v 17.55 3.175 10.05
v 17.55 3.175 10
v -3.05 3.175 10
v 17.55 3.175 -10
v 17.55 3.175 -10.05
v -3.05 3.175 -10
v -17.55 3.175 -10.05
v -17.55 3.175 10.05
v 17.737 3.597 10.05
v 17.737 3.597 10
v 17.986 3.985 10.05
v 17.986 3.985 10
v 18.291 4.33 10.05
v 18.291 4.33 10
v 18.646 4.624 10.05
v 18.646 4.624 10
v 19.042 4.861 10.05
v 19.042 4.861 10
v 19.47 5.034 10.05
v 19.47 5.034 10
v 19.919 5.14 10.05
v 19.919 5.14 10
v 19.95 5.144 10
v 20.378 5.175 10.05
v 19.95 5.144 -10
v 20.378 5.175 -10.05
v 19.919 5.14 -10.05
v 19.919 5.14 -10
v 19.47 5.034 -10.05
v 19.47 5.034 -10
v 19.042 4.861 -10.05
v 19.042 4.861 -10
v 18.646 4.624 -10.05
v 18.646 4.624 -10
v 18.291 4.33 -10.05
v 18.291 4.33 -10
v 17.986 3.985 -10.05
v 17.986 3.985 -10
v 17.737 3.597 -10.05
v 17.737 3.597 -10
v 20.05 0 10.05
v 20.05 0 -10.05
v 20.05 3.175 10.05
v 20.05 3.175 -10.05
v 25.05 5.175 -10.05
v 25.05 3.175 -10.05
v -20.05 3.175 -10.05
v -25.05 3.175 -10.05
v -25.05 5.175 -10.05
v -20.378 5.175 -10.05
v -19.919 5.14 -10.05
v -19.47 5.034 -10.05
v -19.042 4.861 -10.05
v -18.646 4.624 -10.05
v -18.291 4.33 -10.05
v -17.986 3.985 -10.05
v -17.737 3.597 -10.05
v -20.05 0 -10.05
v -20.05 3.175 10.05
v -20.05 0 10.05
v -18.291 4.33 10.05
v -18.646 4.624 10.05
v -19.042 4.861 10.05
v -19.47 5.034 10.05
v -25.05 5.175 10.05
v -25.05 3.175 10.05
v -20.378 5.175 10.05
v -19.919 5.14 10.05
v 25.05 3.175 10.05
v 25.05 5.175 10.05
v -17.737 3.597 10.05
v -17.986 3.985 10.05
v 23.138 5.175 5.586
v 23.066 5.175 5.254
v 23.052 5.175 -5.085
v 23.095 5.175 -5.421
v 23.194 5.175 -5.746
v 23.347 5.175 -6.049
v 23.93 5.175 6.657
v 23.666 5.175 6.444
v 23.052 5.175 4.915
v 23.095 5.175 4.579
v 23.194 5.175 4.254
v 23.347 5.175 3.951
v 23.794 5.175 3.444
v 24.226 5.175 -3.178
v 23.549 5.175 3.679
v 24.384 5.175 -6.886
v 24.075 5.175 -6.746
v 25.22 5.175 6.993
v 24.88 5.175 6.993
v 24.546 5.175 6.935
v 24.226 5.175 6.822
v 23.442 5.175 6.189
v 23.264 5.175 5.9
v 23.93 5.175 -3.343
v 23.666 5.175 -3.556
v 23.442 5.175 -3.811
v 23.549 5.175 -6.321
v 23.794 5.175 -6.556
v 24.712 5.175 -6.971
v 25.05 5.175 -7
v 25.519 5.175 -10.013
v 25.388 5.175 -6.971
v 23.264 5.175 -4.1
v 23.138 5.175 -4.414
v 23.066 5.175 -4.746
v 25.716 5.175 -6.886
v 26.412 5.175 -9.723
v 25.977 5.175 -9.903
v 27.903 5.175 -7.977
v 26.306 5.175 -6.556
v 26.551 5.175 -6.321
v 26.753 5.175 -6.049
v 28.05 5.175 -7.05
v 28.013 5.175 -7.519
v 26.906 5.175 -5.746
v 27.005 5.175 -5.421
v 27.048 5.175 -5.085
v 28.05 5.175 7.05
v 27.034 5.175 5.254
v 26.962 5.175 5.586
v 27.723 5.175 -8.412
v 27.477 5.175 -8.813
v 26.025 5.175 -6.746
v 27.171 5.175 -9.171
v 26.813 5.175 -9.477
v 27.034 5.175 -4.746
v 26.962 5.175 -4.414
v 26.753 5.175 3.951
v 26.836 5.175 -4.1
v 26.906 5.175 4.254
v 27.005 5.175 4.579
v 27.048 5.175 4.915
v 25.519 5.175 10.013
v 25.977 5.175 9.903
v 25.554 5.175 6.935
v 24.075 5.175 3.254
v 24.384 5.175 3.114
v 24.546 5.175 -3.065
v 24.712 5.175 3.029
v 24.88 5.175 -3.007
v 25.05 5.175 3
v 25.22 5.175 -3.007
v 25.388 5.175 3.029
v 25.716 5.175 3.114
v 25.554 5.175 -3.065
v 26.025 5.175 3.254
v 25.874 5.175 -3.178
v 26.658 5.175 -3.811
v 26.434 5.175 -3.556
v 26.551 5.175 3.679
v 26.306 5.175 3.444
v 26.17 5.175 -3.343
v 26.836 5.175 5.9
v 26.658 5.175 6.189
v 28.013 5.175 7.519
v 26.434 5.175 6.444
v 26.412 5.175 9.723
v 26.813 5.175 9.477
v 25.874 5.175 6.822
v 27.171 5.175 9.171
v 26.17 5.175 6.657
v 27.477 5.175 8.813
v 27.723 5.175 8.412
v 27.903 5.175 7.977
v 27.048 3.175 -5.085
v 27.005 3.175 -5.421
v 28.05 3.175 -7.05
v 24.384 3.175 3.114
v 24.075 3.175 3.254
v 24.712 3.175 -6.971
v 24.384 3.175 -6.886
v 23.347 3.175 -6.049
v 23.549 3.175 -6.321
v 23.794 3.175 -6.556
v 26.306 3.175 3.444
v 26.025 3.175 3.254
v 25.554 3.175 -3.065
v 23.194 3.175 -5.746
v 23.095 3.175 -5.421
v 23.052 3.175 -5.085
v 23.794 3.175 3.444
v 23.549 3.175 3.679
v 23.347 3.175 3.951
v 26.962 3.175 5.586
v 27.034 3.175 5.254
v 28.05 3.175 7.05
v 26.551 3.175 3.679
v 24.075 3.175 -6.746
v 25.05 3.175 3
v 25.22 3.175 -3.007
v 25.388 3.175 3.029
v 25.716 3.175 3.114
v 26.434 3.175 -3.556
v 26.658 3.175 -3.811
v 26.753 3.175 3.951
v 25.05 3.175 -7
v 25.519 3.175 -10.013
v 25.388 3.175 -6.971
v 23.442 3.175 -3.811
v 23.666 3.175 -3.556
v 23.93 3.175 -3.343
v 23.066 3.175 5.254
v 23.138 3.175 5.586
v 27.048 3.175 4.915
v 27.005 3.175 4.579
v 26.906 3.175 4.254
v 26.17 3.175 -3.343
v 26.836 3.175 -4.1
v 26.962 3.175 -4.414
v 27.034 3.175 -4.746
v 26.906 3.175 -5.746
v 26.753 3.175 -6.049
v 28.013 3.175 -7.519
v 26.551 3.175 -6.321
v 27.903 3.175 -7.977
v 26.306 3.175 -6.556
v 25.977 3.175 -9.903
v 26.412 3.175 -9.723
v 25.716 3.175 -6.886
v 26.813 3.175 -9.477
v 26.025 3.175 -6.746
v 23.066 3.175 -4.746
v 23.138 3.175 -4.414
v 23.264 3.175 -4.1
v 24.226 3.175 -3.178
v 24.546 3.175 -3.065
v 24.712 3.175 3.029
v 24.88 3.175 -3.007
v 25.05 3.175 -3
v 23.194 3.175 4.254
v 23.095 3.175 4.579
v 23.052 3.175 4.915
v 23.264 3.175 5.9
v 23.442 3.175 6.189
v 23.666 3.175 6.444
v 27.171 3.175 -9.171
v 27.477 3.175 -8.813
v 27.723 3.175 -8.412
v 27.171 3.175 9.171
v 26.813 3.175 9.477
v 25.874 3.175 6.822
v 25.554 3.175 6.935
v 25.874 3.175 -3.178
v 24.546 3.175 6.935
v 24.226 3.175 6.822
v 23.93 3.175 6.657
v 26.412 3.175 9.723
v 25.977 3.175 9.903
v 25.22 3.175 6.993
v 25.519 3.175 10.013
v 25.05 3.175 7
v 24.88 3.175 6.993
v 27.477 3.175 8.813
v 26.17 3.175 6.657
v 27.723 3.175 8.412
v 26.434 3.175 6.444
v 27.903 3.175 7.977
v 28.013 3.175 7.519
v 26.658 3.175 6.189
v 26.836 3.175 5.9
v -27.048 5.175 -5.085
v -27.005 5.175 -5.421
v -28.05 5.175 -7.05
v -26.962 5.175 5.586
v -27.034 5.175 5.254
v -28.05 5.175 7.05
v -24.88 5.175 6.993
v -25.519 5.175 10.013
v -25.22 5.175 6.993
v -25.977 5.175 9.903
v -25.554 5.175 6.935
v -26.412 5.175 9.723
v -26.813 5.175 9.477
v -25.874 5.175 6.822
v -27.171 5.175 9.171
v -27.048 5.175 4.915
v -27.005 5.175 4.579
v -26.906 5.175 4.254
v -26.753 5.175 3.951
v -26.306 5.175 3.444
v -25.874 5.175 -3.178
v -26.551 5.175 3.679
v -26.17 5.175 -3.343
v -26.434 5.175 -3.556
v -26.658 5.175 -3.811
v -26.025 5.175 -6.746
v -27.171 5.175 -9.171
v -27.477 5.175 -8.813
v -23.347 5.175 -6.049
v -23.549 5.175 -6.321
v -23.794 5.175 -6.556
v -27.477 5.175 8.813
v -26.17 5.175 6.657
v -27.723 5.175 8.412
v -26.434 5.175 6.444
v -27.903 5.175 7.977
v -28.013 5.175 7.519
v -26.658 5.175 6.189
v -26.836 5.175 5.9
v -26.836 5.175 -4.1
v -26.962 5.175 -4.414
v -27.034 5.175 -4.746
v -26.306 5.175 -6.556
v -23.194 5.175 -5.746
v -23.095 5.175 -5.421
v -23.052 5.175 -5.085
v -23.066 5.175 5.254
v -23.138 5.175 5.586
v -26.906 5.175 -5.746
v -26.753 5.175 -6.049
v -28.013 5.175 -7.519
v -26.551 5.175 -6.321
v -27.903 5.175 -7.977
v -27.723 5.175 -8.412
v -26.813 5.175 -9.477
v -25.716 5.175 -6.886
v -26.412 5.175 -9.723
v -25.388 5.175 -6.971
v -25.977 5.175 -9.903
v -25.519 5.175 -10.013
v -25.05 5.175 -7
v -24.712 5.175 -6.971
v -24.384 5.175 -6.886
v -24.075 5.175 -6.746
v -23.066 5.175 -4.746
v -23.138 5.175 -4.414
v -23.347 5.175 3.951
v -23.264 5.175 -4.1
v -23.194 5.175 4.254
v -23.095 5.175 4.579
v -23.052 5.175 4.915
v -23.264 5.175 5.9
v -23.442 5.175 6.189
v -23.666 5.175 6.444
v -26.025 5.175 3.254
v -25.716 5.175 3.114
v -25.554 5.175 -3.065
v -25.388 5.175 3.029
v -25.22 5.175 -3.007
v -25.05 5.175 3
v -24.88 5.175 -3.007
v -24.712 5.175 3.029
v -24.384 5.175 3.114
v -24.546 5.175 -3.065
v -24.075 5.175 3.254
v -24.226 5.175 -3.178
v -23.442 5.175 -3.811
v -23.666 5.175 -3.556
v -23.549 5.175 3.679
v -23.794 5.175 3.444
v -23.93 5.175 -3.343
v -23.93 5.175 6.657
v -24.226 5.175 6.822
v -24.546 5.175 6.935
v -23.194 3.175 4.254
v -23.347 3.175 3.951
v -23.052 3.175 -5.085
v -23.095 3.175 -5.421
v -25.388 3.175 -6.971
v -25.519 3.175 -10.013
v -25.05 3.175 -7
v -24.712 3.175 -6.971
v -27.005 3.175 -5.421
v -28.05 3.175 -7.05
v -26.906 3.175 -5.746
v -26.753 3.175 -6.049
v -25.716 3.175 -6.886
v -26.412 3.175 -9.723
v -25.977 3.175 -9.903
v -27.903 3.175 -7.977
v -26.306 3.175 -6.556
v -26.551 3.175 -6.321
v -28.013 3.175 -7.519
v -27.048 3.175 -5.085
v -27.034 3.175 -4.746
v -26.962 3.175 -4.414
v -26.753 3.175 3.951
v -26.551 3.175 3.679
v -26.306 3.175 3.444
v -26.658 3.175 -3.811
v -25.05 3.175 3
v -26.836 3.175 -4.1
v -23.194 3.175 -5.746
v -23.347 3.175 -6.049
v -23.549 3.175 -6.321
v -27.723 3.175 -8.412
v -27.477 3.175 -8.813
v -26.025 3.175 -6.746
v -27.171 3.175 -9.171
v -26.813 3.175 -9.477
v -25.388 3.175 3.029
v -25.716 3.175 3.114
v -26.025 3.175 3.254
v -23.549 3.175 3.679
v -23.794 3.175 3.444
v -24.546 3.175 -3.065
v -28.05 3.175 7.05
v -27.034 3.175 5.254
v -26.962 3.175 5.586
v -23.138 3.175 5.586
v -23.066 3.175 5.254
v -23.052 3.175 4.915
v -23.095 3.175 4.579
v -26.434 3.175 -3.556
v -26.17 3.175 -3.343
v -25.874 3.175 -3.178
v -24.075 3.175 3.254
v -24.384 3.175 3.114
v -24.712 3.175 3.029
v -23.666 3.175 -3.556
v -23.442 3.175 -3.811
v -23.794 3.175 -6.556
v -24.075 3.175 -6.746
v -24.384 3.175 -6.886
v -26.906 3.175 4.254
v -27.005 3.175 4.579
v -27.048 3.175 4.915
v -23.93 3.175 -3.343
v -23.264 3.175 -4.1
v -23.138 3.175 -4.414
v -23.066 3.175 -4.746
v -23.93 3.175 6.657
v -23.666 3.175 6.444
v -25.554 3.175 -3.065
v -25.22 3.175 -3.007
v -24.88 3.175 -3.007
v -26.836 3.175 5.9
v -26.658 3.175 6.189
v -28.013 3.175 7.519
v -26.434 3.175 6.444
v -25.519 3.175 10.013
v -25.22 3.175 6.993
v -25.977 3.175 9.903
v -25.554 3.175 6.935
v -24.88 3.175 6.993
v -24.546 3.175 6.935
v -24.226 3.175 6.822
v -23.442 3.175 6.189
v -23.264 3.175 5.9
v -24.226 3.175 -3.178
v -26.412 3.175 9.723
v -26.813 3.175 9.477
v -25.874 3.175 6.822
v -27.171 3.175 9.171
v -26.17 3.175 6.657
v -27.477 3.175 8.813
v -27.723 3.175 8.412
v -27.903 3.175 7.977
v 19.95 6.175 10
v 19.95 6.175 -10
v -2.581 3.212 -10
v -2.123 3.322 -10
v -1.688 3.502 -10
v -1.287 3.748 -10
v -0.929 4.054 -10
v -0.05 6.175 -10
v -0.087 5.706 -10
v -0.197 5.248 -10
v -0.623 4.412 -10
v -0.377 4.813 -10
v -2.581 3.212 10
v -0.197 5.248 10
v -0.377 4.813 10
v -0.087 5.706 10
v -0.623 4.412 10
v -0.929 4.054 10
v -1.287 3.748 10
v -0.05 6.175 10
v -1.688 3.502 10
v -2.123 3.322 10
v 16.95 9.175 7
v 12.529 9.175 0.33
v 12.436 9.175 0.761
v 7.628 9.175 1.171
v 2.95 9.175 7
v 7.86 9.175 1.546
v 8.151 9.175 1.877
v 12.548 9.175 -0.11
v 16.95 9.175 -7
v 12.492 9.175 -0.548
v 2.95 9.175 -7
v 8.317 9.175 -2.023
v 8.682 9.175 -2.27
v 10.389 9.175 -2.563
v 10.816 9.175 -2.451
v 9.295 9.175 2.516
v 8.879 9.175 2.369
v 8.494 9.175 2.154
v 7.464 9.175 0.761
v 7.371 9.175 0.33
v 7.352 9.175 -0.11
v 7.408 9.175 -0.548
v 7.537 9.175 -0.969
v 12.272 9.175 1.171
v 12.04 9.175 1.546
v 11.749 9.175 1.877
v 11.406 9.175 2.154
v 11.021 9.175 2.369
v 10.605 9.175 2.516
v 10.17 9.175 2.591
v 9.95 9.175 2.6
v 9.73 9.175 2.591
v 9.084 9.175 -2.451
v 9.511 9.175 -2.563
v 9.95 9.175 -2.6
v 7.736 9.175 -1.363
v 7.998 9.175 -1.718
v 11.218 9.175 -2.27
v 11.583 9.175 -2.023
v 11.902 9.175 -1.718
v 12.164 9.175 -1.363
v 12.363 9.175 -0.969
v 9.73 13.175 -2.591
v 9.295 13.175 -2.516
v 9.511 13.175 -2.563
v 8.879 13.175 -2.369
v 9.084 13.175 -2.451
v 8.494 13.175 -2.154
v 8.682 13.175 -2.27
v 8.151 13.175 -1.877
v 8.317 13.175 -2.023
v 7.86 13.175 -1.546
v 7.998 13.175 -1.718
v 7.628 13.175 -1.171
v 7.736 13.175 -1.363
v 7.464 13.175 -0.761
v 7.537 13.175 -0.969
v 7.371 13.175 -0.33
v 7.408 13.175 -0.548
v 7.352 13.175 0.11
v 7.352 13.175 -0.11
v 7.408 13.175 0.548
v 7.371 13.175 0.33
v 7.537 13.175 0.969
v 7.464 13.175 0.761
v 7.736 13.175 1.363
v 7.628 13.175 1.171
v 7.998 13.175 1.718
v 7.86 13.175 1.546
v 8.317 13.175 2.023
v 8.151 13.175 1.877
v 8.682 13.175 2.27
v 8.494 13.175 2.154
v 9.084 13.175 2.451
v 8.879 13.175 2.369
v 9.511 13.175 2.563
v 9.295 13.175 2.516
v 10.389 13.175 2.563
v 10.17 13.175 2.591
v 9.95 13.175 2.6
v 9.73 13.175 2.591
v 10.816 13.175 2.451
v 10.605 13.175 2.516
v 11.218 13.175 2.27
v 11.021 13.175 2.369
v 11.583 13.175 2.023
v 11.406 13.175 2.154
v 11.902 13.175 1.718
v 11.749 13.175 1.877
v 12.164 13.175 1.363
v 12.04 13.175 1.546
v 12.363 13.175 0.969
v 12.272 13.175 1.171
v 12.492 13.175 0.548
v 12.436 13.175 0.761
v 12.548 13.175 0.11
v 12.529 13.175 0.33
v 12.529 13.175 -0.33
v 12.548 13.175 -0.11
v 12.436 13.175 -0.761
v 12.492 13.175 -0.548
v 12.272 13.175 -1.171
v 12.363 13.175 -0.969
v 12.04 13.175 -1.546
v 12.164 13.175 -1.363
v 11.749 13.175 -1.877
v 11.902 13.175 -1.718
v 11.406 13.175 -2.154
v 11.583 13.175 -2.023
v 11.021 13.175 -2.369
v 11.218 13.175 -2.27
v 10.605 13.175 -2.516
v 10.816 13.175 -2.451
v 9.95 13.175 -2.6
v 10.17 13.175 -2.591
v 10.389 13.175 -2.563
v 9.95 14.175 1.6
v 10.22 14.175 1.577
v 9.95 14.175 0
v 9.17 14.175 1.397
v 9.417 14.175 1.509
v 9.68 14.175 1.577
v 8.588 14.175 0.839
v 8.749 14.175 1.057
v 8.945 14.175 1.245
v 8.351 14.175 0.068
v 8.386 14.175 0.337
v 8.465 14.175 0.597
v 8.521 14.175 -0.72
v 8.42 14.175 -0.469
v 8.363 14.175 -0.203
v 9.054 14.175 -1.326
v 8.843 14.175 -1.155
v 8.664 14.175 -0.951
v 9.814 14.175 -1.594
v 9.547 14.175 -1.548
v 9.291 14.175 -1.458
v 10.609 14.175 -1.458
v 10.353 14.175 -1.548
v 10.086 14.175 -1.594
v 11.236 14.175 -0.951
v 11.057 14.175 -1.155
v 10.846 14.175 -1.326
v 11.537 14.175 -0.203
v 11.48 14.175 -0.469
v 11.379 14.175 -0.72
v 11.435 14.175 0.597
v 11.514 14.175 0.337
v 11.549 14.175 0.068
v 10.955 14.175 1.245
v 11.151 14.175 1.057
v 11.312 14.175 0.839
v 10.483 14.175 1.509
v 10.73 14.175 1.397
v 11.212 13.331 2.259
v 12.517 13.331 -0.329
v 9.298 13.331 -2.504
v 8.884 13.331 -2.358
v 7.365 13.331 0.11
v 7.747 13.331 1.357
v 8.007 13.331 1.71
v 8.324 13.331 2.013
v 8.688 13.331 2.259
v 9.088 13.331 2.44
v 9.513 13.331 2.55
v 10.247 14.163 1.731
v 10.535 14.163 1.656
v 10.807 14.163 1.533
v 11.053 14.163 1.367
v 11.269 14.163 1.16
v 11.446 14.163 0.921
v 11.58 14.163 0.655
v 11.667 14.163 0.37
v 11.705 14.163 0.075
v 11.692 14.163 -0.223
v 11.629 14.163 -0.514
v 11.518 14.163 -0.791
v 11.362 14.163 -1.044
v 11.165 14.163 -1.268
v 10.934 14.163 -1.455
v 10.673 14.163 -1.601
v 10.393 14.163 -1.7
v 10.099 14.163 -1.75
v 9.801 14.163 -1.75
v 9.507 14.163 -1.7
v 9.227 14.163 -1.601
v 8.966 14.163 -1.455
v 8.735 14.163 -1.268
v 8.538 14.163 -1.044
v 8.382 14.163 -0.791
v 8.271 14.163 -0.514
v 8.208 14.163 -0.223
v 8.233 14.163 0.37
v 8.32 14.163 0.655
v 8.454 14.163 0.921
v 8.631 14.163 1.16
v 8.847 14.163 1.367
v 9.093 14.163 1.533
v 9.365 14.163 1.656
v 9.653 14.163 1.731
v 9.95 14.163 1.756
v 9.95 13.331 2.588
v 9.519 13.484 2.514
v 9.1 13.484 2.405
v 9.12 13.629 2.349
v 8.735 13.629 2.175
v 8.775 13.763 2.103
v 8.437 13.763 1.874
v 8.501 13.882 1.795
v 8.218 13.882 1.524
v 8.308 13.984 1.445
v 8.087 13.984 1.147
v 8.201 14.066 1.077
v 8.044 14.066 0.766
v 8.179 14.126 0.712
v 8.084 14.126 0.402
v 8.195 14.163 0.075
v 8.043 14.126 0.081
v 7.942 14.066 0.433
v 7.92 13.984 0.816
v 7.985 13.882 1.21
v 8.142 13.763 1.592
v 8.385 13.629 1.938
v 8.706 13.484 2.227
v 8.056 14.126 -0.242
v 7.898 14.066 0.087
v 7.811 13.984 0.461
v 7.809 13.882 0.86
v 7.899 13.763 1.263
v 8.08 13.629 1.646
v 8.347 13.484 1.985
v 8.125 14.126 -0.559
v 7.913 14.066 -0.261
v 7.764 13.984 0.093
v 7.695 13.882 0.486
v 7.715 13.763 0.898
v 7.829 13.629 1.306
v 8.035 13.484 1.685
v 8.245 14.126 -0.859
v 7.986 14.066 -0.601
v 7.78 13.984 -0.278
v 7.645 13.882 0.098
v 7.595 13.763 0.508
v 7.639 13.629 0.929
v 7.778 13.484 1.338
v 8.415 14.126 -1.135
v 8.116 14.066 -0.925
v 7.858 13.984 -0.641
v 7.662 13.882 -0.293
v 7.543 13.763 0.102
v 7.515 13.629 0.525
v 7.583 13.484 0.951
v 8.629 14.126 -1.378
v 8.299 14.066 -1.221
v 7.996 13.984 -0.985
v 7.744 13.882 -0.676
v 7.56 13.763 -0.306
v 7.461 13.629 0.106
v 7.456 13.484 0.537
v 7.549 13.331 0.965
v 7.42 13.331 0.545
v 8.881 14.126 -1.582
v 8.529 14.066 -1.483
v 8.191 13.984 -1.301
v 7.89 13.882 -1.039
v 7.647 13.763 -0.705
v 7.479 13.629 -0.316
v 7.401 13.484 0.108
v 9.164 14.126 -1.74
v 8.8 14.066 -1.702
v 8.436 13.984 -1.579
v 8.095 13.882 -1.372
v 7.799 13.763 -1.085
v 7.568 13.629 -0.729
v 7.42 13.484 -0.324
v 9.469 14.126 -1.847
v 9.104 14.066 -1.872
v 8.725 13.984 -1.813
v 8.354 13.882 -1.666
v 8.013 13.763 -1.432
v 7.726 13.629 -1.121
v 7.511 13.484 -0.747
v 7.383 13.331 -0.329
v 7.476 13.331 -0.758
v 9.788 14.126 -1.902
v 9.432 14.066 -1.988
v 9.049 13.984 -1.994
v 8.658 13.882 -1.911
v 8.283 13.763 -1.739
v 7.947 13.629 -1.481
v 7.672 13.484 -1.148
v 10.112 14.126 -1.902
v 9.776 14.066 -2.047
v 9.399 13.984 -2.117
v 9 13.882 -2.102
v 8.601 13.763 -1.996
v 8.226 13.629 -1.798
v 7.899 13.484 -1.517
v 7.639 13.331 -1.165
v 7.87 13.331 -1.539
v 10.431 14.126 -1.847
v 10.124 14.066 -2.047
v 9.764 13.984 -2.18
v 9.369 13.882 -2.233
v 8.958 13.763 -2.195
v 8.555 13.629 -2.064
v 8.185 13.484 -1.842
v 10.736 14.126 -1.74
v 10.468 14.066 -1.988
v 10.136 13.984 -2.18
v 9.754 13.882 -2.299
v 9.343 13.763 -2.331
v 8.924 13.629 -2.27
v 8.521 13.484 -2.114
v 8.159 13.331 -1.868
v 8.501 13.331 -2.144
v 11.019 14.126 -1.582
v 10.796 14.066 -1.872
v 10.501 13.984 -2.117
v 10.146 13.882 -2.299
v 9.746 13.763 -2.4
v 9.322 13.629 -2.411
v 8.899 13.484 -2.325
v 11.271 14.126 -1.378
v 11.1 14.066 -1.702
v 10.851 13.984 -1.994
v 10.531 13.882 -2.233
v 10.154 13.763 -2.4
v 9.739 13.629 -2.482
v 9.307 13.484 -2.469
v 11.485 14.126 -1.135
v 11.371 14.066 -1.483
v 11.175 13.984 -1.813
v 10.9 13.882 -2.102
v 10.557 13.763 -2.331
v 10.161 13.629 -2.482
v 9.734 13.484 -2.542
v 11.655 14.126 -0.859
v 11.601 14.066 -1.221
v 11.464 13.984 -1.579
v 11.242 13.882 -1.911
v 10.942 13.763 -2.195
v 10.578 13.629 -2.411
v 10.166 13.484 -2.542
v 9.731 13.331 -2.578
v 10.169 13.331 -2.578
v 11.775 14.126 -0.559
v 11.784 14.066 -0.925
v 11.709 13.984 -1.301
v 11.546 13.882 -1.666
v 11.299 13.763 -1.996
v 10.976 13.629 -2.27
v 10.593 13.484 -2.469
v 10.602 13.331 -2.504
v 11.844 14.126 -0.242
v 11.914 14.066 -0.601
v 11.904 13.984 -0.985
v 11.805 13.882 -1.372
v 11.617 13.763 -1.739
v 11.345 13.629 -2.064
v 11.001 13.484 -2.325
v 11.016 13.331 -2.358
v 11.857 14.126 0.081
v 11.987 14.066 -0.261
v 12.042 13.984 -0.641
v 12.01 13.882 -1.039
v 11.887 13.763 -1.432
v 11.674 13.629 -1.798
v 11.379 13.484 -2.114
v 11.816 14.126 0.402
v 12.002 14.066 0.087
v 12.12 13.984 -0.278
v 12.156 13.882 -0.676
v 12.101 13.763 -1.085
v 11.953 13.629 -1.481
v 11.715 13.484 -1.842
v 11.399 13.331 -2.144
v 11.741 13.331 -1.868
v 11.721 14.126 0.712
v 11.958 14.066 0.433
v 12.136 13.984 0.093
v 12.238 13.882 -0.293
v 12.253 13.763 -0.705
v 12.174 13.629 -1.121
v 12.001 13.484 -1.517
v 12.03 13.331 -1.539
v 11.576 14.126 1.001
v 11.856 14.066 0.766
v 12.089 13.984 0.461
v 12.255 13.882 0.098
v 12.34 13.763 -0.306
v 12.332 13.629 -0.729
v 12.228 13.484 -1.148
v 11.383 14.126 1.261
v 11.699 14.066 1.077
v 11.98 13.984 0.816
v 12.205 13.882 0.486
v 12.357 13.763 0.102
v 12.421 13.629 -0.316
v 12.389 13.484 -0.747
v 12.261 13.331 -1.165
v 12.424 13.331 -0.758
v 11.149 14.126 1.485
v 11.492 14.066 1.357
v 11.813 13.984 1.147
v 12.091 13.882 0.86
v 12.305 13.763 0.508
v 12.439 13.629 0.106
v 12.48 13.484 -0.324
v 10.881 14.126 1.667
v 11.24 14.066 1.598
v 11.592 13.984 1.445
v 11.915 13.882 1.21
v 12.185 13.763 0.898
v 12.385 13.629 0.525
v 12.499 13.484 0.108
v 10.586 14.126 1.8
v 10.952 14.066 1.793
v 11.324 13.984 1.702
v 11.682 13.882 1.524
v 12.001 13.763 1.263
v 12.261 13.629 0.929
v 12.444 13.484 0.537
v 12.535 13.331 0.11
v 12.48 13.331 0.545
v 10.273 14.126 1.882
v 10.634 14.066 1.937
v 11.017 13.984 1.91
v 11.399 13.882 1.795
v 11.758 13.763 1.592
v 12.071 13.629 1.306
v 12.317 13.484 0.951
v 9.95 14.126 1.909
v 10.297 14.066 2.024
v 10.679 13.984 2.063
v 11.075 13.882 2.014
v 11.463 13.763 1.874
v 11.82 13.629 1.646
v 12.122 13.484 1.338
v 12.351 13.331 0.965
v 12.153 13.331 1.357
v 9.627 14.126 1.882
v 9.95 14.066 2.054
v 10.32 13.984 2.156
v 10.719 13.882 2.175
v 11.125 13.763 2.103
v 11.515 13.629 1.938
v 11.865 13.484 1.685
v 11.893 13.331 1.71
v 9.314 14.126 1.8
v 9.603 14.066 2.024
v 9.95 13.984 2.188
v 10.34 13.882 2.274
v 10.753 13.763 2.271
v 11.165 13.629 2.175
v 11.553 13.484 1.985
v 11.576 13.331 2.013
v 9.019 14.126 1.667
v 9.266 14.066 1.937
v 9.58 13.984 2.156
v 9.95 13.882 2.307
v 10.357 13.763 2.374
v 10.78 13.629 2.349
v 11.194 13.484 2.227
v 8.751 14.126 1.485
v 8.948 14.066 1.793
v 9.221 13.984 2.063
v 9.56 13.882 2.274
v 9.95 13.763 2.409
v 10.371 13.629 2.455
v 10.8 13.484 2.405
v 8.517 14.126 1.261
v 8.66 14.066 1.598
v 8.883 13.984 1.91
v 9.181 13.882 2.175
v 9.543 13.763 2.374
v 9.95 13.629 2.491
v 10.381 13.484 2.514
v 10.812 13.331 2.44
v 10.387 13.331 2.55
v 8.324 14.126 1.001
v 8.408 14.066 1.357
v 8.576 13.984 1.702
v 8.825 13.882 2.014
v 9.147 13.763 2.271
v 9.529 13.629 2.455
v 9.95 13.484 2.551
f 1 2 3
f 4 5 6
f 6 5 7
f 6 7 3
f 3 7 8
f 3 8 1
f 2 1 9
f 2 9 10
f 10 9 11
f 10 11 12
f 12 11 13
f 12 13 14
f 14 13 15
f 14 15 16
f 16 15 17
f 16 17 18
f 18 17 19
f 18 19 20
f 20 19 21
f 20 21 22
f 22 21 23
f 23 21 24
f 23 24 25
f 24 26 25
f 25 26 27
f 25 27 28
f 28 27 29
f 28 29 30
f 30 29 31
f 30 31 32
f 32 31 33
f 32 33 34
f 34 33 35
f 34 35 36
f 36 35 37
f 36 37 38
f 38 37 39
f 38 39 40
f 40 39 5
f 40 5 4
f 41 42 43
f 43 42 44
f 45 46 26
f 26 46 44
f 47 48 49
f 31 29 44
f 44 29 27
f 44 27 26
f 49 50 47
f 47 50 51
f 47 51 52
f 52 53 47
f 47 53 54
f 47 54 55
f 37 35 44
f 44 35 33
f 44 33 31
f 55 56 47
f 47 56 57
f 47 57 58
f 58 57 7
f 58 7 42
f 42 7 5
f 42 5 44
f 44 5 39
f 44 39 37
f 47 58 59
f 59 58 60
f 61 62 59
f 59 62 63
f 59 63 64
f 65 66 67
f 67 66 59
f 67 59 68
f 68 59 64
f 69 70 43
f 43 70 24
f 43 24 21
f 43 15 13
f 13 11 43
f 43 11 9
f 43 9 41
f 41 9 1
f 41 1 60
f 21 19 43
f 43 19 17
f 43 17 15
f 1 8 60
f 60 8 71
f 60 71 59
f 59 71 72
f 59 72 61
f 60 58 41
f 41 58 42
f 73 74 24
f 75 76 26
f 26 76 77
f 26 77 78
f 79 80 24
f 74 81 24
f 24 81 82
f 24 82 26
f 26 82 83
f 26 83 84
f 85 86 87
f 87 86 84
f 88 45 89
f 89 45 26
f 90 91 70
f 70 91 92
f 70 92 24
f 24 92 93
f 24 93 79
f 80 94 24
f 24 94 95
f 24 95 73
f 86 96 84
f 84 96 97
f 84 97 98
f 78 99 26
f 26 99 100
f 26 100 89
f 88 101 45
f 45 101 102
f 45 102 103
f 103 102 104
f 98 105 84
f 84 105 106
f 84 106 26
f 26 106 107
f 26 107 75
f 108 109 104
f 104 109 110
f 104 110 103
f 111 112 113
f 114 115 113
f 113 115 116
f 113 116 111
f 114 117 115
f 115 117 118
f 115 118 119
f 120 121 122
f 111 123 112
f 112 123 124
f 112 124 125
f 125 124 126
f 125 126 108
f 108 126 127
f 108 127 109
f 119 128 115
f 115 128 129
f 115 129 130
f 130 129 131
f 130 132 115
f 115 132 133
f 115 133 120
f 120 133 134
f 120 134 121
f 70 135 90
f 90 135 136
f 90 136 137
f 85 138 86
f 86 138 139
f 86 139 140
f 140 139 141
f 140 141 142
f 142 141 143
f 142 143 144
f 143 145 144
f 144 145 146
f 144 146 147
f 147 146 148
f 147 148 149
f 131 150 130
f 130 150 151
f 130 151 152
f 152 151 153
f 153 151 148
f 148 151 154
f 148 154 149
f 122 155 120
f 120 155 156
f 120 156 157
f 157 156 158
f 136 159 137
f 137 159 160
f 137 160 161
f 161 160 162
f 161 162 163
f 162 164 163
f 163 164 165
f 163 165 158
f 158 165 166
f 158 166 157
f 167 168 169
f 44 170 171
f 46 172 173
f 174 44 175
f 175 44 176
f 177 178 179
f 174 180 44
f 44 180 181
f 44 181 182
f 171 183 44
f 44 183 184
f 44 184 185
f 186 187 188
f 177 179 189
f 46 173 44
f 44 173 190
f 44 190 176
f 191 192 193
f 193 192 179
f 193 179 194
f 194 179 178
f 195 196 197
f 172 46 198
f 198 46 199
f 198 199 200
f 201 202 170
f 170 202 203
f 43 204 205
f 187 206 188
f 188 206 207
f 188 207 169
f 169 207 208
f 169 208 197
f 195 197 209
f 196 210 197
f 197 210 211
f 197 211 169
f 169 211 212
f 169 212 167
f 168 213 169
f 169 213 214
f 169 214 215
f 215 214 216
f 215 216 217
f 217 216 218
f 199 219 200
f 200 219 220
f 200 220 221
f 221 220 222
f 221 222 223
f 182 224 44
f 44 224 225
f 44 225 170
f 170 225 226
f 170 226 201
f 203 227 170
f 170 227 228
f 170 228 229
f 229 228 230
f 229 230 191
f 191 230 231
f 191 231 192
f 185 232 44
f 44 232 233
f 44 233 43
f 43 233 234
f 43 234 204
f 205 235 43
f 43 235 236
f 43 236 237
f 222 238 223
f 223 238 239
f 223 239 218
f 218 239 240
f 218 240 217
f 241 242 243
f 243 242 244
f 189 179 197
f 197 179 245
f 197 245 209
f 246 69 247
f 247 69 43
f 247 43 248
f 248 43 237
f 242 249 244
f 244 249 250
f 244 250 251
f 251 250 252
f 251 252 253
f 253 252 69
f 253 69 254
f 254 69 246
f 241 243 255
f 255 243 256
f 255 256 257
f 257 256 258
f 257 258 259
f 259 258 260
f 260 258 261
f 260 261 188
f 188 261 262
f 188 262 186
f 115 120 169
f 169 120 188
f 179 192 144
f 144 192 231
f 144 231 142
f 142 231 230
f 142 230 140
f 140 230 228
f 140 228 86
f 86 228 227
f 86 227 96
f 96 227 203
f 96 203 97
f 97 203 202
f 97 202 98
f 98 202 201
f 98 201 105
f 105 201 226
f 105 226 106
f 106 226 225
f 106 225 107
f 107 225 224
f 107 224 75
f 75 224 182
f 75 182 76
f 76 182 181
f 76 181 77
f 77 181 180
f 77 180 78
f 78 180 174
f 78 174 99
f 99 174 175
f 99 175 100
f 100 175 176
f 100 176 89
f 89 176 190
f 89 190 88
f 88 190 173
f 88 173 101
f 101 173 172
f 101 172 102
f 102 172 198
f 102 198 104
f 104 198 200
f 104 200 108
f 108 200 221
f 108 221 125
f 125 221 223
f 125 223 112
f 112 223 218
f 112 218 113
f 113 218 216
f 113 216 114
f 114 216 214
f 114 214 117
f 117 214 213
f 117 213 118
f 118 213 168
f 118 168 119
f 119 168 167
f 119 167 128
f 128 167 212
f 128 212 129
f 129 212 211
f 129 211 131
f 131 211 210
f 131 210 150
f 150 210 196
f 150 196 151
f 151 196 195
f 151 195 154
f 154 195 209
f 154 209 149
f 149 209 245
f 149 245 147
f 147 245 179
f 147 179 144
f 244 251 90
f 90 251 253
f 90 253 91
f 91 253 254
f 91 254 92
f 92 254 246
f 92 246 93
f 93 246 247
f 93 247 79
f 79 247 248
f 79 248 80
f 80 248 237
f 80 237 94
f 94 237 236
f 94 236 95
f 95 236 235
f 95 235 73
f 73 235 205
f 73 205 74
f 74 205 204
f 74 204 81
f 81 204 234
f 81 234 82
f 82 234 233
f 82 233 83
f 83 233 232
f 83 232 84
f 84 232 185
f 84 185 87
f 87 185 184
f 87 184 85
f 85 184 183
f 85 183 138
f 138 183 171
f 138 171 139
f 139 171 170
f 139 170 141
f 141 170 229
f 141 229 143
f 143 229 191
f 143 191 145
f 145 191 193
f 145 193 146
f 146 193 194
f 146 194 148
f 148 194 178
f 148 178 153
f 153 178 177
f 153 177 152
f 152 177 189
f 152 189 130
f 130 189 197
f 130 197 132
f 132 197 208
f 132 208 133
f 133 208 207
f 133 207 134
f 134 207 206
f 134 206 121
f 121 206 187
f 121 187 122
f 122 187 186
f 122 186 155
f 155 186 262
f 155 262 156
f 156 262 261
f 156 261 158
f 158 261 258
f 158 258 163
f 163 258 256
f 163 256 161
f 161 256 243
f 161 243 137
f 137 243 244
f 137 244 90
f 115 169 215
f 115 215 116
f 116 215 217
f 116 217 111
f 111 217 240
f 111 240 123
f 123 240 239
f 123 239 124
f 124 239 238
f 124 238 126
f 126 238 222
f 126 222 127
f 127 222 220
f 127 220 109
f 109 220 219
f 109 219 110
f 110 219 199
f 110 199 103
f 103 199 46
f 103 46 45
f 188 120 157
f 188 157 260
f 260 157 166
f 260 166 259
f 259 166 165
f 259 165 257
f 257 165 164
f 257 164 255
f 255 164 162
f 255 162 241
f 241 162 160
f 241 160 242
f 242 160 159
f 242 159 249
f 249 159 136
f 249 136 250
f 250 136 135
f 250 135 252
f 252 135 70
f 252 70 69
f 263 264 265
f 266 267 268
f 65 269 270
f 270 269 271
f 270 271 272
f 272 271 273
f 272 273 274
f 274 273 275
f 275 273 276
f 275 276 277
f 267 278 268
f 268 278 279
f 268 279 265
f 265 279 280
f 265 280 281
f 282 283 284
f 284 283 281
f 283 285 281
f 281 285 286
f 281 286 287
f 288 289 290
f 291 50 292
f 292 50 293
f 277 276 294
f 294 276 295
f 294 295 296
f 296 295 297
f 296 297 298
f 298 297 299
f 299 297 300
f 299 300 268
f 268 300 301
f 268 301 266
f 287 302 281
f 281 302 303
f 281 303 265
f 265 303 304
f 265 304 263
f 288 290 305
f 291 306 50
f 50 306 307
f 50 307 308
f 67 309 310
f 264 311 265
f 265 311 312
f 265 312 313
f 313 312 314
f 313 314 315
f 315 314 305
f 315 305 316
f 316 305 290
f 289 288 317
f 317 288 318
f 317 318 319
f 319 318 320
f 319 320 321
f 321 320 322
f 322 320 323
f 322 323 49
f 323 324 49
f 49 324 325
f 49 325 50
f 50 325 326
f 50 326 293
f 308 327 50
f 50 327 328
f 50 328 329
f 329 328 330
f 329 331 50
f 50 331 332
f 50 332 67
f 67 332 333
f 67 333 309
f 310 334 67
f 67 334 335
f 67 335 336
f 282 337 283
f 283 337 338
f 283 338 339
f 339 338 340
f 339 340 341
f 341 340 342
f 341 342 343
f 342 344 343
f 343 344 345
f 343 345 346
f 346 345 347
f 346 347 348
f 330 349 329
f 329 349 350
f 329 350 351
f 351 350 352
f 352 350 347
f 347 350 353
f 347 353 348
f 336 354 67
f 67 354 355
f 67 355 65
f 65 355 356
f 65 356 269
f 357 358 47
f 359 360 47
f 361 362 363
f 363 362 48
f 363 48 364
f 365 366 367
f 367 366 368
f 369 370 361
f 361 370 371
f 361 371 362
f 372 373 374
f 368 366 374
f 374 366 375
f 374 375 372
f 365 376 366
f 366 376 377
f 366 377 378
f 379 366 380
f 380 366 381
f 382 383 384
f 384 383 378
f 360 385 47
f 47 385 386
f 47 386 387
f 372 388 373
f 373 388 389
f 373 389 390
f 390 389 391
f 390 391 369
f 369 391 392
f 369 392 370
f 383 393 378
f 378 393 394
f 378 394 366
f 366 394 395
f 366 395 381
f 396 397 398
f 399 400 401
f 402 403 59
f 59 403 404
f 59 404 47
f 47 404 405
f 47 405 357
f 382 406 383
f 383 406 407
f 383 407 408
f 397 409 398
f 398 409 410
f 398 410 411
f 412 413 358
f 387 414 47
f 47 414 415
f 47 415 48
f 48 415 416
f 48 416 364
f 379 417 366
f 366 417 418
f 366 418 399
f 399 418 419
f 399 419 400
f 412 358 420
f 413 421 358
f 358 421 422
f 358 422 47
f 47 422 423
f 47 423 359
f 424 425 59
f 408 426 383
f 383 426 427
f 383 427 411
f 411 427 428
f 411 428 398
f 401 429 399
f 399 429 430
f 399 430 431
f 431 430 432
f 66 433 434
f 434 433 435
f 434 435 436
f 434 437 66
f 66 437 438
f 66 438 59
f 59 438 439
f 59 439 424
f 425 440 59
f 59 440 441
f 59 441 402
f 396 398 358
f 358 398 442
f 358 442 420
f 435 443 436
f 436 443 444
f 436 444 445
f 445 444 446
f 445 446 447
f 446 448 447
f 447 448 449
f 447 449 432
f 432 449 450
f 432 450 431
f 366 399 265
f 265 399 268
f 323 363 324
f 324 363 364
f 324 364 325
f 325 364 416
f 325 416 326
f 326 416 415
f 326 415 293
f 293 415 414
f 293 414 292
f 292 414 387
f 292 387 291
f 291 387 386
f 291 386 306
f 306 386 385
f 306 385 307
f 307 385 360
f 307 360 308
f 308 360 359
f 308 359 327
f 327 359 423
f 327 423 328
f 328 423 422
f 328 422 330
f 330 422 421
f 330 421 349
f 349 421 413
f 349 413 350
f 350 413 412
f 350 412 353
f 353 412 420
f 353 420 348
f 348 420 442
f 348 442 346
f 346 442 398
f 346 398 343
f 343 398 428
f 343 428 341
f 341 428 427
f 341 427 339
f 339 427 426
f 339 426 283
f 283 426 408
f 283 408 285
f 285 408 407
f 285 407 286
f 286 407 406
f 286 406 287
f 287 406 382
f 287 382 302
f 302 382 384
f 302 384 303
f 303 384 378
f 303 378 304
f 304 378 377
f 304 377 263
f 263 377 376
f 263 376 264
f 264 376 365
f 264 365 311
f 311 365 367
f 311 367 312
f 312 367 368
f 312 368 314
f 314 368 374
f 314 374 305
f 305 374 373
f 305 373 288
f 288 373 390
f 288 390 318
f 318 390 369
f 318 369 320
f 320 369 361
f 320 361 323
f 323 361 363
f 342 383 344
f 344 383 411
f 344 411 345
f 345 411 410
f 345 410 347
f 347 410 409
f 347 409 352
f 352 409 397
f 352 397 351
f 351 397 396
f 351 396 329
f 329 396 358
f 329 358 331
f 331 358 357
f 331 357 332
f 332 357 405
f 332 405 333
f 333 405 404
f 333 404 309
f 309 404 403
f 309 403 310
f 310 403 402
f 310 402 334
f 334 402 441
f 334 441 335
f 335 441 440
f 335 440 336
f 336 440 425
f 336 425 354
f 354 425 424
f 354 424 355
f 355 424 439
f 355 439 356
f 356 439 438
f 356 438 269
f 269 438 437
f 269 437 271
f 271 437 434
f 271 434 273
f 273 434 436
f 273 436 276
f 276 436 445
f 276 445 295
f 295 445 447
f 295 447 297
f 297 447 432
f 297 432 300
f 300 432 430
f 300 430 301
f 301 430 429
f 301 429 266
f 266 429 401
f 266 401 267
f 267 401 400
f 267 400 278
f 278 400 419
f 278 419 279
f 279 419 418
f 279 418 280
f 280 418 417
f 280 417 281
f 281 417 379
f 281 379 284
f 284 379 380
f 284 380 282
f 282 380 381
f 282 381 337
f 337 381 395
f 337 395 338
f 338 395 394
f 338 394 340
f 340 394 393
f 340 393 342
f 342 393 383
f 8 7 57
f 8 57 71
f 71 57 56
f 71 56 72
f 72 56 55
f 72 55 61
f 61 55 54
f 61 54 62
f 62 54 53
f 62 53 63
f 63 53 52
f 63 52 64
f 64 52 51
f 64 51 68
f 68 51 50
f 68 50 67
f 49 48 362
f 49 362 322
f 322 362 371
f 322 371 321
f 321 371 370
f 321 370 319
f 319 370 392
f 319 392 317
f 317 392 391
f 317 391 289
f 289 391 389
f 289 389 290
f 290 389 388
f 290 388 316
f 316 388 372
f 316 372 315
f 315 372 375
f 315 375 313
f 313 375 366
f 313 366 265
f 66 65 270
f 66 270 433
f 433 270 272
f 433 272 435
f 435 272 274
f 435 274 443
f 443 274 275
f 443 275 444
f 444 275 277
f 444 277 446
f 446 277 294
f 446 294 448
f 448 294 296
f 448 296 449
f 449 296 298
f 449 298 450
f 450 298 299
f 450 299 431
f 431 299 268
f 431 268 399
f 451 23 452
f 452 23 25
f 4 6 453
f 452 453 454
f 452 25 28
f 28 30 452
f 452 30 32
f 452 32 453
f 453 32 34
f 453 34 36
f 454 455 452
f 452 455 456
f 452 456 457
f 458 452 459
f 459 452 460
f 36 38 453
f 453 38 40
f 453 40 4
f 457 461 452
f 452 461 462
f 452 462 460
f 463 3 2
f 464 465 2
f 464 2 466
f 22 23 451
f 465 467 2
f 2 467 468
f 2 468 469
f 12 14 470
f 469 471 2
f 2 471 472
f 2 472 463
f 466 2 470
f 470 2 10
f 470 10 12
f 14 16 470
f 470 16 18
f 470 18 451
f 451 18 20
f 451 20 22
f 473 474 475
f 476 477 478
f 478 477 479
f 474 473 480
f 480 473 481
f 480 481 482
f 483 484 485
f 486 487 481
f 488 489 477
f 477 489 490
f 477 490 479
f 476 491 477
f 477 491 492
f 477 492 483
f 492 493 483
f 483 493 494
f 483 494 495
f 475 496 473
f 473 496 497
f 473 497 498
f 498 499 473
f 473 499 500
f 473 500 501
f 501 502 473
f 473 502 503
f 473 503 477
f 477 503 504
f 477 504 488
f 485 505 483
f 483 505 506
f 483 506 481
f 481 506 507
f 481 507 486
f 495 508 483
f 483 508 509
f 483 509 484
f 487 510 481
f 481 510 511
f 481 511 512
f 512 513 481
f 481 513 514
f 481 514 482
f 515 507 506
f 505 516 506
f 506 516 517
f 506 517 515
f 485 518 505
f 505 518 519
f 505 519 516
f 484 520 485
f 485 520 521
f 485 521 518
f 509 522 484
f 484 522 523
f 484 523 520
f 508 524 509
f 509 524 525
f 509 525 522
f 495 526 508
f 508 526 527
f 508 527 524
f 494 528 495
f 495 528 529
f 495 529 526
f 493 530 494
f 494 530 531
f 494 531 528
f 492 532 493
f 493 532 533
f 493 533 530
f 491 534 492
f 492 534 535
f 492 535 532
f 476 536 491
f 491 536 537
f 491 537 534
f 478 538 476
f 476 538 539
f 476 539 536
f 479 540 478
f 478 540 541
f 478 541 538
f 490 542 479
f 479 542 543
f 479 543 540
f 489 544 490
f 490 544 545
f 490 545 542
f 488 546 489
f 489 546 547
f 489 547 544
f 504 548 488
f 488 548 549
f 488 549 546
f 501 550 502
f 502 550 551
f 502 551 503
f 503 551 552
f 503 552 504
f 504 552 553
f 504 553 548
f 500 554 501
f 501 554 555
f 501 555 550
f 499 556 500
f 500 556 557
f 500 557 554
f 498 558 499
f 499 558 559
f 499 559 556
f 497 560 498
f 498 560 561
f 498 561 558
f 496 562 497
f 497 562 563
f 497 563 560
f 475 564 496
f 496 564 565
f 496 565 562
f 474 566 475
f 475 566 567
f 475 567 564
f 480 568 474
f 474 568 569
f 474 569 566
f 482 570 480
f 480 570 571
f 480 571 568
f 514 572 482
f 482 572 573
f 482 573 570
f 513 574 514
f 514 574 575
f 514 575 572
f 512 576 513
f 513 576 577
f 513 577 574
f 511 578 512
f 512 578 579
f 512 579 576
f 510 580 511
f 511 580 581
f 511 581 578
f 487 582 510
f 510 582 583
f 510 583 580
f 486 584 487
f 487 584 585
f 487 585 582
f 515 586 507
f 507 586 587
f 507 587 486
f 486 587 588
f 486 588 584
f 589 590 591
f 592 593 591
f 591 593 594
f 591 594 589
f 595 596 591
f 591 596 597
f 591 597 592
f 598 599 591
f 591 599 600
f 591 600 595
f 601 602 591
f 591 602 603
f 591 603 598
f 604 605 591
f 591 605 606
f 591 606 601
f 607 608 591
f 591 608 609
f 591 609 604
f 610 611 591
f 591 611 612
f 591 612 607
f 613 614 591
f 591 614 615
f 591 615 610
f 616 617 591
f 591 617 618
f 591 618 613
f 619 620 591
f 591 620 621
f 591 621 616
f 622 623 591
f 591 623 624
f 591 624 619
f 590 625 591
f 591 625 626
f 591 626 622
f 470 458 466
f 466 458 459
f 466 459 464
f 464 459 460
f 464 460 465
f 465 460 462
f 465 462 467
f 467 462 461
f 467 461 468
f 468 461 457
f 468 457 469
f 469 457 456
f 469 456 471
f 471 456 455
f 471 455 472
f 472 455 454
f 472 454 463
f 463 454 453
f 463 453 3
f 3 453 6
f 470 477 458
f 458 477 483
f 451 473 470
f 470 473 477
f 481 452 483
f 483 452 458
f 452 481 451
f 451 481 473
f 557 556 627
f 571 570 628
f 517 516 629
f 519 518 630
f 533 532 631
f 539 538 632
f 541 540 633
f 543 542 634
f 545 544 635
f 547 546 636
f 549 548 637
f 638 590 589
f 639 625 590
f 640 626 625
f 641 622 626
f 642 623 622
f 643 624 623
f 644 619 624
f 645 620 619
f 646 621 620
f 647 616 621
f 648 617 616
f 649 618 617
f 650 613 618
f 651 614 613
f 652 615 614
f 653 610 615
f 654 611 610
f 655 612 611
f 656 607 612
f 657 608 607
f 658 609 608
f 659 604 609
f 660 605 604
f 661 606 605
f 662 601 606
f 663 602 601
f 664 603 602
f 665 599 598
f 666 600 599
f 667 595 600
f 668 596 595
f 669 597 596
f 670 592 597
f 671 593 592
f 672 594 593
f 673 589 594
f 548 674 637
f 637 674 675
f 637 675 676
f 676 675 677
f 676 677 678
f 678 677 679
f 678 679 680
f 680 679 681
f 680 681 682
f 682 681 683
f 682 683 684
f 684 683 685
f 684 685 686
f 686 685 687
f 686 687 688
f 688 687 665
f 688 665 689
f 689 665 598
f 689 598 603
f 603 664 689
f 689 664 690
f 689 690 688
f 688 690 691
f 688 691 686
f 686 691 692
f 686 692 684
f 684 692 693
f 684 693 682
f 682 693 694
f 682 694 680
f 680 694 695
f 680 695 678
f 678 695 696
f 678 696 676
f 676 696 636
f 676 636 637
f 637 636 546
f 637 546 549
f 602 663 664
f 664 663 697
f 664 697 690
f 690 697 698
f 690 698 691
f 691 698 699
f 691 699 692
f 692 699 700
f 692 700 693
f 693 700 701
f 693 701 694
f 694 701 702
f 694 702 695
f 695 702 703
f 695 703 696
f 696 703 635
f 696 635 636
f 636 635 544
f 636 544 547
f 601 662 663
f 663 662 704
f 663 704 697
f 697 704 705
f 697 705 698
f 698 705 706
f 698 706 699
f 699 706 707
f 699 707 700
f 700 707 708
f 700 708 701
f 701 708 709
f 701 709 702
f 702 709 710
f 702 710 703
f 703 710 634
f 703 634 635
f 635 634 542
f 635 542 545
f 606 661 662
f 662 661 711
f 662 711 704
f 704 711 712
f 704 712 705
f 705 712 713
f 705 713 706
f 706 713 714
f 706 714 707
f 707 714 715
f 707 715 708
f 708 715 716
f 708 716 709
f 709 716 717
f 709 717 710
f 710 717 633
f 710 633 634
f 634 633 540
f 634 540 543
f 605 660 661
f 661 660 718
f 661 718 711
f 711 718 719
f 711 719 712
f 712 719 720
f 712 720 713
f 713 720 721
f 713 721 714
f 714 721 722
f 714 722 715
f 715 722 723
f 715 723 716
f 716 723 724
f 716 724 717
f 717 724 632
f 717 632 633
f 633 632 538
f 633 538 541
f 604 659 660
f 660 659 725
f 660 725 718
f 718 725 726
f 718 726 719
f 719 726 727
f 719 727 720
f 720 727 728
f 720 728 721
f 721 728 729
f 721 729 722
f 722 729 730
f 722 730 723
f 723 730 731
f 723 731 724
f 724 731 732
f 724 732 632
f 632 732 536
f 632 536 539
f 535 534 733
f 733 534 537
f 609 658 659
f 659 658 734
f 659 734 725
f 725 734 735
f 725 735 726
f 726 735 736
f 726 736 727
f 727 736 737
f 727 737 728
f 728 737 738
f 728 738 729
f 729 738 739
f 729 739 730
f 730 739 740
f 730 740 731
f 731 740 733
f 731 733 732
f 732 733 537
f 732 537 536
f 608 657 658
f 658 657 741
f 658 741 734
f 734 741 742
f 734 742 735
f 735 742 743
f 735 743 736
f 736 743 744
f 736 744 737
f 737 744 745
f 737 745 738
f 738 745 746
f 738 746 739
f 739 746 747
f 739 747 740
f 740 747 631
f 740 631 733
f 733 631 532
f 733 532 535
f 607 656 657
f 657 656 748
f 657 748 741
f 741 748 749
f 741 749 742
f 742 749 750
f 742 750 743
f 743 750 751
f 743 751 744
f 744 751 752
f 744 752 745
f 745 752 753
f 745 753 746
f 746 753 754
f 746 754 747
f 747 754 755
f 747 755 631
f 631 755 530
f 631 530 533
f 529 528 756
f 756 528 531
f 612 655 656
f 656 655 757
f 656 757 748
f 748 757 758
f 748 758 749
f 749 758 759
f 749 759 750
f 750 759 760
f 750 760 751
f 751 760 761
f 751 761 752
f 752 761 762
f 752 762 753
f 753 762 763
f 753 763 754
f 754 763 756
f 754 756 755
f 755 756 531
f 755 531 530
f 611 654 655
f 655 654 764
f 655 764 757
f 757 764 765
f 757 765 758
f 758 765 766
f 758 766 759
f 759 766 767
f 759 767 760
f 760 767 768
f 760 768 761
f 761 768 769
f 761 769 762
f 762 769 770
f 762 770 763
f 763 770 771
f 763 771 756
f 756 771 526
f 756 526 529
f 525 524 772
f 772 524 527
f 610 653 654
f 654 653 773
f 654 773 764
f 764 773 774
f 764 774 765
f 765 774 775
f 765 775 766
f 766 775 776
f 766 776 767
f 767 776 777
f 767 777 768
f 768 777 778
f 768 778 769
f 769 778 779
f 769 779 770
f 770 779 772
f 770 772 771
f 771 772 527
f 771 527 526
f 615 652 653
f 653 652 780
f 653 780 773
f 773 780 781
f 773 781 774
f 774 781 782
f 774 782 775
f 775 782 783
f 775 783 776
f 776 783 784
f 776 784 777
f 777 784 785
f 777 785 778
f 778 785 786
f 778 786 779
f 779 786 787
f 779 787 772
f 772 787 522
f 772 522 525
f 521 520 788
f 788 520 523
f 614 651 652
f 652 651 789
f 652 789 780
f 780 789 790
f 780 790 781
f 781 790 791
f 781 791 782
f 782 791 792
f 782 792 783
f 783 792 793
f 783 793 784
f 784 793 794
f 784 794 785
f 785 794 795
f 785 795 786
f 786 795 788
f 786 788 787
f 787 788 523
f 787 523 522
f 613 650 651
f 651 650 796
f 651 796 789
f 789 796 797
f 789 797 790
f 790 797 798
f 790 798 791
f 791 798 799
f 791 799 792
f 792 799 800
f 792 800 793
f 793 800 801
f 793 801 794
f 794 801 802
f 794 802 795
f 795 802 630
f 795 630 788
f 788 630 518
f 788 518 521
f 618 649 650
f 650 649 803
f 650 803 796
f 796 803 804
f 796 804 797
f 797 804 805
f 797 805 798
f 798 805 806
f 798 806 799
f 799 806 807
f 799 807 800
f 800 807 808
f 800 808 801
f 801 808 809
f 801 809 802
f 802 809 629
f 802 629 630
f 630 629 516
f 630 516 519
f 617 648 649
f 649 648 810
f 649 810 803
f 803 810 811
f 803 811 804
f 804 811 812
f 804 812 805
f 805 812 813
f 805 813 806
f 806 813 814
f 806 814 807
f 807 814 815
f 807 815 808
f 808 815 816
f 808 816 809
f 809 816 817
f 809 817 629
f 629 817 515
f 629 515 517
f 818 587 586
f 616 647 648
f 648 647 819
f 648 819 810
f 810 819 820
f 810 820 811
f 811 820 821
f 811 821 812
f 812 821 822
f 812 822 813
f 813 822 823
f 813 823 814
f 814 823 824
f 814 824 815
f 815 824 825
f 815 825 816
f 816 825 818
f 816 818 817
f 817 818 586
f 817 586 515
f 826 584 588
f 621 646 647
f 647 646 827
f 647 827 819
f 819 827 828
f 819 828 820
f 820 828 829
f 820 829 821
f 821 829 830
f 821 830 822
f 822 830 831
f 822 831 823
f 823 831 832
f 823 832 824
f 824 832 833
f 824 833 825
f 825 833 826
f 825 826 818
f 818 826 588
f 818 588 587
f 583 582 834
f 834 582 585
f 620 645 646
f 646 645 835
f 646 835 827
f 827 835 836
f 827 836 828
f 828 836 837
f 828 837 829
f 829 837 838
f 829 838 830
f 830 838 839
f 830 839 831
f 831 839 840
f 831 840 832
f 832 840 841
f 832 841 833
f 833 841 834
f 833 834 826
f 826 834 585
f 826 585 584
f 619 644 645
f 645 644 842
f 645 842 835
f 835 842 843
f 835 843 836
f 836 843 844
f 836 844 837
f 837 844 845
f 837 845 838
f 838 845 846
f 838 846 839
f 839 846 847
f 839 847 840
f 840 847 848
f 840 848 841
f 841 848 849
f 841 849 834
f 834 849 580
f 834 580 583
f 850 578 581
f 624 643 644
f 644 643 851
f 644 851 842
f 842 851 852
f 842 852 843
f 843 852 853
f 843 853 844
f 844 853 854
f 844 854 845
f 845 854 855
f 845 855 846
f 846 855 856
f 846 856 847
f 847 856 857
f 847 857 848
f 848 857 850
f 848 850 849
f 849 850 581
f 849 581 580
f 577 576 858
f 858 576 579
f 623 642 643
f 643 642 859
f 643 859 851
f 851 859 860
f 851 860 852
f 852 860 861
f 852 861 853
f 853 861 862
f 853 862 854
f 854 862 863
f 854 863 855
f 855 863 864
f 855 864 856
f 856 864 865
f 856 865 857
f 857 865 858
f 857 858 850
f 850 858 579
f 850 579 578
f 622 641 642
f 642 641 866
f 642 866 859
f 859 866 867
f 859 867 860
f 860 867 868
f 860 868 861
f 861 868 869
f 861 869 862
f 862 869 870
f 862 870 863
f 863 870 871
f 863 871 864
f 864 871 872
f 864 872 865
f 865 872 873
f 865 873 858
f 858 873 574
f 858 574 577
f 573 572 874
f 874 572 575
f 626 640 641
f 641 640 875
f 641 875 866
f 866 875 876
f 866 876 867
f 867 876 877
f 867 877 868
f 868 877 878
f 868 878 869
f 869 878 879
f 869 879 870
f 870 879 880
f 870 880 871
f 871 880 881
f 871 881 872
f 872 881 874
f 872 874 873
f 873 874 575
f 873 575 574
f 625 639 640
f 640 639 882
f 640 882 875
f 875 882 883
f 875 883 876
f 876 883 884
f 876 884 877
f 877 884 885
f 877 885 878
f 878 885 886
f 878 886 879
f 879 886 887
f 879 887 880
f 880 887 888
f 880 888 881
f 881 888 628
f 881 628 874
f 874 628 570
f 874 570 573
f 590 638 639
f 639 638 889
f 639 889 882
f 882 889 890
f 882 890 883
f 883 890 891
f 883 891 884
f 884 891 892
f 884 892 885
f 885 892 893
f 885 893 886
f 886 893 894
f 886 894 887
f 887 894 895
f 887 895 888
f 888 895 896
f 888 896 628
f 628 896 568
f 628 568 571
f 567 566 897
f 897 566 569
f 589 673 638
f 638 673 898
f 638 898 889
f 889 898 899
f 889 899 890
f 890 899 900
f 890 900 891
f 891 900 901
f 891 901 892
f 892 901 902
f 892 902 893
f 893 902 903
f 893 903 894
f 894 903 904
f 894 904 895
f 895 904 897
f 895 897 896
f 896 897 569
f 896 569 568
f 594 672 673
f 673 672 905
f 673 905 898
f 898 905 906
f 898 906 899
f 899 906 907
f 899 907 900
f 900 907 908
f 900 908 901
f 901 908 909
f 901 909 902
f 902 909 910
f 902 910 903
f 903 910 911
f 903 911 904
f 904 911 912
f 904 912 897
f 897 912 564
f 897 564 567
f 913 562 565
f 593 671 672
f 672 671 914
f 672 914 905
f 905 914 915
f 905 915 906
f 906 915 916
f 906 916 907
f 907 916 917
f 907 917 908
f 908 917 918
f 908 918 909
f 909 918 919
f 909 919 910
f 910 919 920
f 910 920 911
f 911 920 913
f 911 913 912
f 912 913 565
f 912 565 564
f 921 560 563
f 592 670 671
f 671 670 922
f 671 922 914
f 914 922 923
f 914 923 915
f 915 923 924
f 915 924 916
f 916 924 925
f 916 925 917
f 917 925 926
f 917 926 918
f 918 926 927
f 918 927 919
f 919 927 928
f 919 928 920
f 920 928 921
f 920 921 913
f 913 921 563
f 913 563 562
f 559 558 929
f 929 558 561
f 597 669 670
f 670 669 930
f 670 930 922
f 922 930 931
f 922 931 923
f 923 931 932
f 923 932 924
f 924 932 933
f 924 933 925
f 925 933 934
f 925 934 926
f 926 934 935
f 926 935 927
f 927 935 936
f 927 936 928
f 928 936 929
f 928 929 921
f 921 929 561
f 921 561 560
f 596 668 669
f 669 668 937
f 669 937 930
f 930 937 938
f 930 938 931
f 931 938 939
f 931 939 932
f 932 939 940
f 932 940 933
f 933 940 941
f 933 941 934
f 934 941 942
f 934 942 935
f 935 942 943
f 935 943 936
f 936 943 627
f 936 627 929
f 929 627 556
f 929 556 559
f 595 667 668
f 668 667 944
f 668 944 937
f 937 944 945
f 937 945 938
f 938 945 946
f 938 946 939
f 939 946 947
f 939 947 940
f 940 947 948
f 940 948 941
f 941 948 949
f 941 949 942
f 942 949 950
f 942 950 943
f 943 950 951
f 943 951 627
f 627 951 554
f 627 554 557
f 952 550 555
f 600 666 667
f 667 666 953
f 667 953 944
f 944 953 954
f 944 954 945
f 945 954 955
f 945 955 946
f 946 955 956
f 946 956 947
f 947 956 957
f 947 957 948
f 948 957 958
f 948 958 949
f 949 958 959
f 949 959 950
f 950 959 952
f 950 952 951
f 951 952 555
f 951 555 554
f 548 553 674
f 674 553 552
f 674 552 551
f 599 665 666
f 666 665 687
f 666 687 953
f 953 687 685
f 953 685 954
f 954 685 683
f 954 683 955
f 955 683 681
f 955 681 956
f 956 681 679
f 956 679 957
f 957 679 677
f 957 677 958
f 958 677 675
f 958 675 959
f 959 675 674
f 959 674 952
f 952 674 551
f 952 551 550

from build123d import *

# Parameters (mm, degrees)
SKETCH1_W            = 40.1
SKETCH1_H            = 20.1
BOSS_EXTRUDE1_DEPTH  = 3.175
SKETCH2_W            = 2.5
SKETCH2_H            = 20.1
BOSS_EXTRUDE2_DEPTH  = 2
SKETCH3_W            = 20.1
SKETCH3_H            = 2
BOSS_EXTRUDE3_DEPTH  = 8
SKETCH4_R            = 2
CUT_EXTRUDE1_DEPTH   = 30.964739695
FILLET1_R            = 3
FILLET2_R            = 3
FILLET1_OF_MIRROR2_R = 3
FILLET2_OF_MIRROR2_R = 3
SKETCH7_W            = 20
SKETCH7_H            = 20
BOSS_EXTRUDE5_DEPTH  = 6
SKETCH5_R            = 2.6
BOSS_EXTRUDE4_DEPTH  = 5
FILLET4_R            = 3
CHAMFER1_SIZE        = 3
FILLET5_R            = 1


# Some blends are built 0.0001 mm under size
with BuildPart() as part:
    # Sketch1 → Boss-Extrude1 (new body)
    with BuildSketch(Plane(origin=(0, 0, 0), x_dir=(1, 0, 0), z_dir=(0, 1, 0))):
        Rectangle(SKETCH1_W, SKETCH1_H)
    extrude(amount=BOSS_EXTRUDE1_DEPTH)

    # Sketch2 → Boss-Extrude2 (add)
    with BuildSketch(Plane(origin=(0, 3.175, 0), x_dir=(1, 0, 0), z_dir=(0, 1, 0))):
        with Locations((18.8, 0)):
            Rectangle(SKETCH2_W, SKETCH2_H)
    boss_extrude2 = extrude(amount=BOSS_EXTRUDE2_DEPTH)

    # Sketch3 → Boss-Extrude3 (add)
    with BuildSketch(Plane(origin=(20.05, 0, 0), x_dir=(0, 0, -1), z_dir=(1, 0, 0))):
        with Locations((0, 4.175)):
            Rectangle(SKETCH3_W, SKETCH3_H)
    boss_extrude3 = extrude(amount=BOSS_EXTRUDE3_DEPTH)

    # Sketch4 → Cut-Extrude1 (cut, symmetric)
    with BuildSketch(Plane.XZ.offset(-3.175)):
        with Locations(Location((25.05, 5, 0), (0, 0, 270))):
            Circle(SKETCH4_R)
        with Locations(Location((25.05, -5, 0), (0, 0, 270))):
            Circle(SKETCH4_R)
    cut_extrude1 = extrude(amount=CUT_EXTRUDE1_DEPTH, both=True, mode=Mode.SUBTRACT)

    # Fillet1
    # the kernel refuses this fillet: 3 mm, written as the material it takes off along each edge
    with BuildSketch(Plane(origin=(17.55, 5.175, -17.121067812), x_dir=(0, -1, 0), z_dir=(0, 0, 1))) as fillet1_piece_1:
        with BuildLine():
            CenterArc((3, 2.828427125), FILLET1_R, 180, 70.528779366)
            Line((0, 2.828427125), (-0.06, 2.828427125))
            Line((-0.06, 2.828427125), (-0.06, 0))
            Line((-0.06, 0), (0, -0.06))
            ThreePointArc((0, -0.06), (1, -0.06), (1.98, -0.056568542))
            Line((1.98, -0.056568542), (2, 0))
        make_face()
    extrude(amount=34.242135624, mode=Mode.SUBTRACT)

    # Fillet2
    fillet2_edges = [part.edges().sort_by_distance(p)[0] for p in [
        (28.05, 4.175, 10.05),
        (28.05, 4.175, -10.05),
    ]]
    fillet(fillet2_edges, radius=FILLET2_R)

    # Mirror2: Boss-Extrude2, Boss-Extrude3, Cut-Extrude1 across plane
    add(boss_extrude2.mirror(Plane(origin=(0, 0, 0), x_dir=(0, 0, 1), z_dir=(1, 0, 0))))
    add(boss_extrude3.mirror(Plane(origin=(0, 0, 0), x_dir=(0, 0, 1), z_dir=(1, 0, 0))))
    add(cut_extrude1.mirror(Plane(origin=(0, 0, 0), x_dir=(0, 0, 1), z_dir=(1, 0, 0))), mode=Mode.SUBTRACT)

    # Fillet1 of Mirror2
    # the kernel refuses this fillet: 3 mm, written as the material it takes off along each edge
    with BuildSketch(Plane(origin=(-17.55, 5.175, -17.121067812), x_dir=(-1, 0, 0), z_dir=(0, 0, 1))) as fillet1_of_mirror2_piece_1:
        with BuildLine():
            CenterArc((2.828427125, 3), FILLET1_OF_MIRROR2_R, 199.471220634, 70.528779366)
            Line((0, 2), (-0.056568542, 1.98))
            ThreePointArc((-0.056568542, 1.98), (-0.06, 1), (-0.06, 0))
            Line((-0.06, 0), (0, -0.06))
            Line((0, -0.06), (2.828427125, -0.06))
            Line((2.828427125, -0.06), (2.828427125, 0))
        make_face()
    extrude(amount=34.242135624, mode=Mode.SUBTRACT)

    # Fillet2 of Mirror2
    fillet2_of_mirror2_edges = [part.edges().sort_by_distance(p)[0] for p in [
        (-28.05, 4.175, 10.05),
        (-28.05, 4.175, -10.05),
    ]]
    fillet(fillet2_of_mirror2_edges, radius=FILLET2_OF_MIRROR2_R)

    # Sketch7 → Boss-Extrude5 (add)
    with BuildSketch(Plane(origin=(0, 3.175, 0), x_dir=(1, 0, 0), z_dir=(0, 1, 0))):
        with Locations((9.95, 0)):
            Rectangle(SKETCH7_W, SKETCH7_H)
    extrude(amount=BOSS_EXTRUDE5_DEPTH)

    # Sketch5 → Boss-Extrude4 (add)
    with BuildSketch(Plane(origin=(0, 9.175, 0), x_dir=(1, 0, 0), z_dir=(0, 1, 0))):
        with Locations(Location((9.95, 0, 0), (0, 0, 270))):
            Circle(SKETCH5_R)
    extrude(amount=BOSS_EXTRUDE4_DEPTH)

    # Fillet4
    fillet4_edges = [part.edges().sort_by_distance(p)[0] for p in [
        (-0.05, 3.175, 0),
    ]]
    fillet(fillet4_edges, radius=FILLET4_R)

    # Chamfer1
    chamfer1_edges = [part.edges().sort_by_distance(p)[0] for p in [
        (19.95, 9.175, 0),
        (9.95, 9.175, -10),
        (-0.05, 9.175, 0),
        (9.95, 9.175, 10),
    ]]
    chamfer(chamfer1_edges, length=CHAMFER1_SIZE - 0.0001)  # a hair under: the kernel refuses the full size

    # Fillet5
    fillet5_edges = [part.edges().sort_by_distance(p)[0] for p in [
        (9.95, 14.175, -2.6),
    ]]
    fillet(fillet5_edges, radius=FILLET5_R)


solid = part.part
